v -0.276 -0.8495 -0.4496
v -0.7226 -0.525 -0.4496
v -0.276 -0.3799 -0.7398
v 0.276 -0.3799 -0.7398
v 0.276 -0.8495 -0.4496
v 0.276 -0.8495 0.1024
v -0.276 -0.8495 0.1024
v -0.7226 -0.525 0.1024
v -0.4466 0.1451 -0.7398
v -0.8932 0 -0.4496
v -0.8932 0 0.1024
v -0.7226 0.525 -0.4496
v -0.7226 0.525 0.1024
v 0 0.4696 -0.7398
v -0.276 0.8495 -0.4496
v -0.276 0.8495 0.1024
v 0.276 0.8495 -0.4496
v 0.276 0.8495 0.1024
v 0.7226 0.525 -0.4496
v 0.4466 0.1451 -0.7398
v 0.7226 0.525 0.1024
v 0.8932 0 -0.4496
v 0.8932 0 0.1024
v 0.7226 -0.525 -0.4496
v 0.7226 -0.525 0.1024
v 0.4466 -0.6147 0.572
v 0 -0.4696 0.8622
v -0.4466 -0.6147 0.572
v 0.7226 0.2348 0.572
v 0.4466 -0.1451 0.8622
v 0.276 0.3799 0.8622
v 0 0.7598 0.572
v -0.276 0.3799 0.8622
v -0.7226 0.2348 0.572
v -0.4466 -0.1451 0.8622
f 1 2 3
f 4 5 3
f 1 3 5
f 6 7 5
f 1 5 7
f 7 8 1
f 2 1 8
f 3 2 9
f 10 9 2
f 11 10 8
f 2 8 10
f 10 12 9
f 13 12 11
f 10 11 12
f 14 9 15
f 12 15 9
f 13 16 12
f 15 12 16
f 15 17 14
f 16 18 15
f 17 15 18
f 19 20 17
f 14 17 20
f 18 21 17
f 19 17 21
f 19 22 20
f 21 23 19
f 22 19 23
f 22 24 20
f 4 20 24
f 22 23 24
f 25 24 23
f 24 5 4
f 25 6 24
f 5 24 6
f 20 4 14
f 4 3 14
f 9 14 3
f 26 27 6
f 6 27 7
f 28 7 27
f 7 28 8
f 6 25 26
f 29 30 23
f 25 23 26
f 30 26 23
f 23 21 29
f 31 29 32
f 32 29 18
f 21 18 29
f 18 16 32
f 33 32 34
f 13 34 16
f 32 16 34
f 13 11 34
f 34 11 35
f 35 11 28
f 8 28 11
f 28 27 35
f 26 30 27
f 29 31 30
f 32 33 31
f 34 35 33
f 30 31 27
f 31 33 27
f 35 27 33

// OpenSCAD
polyhedron( points = [[-0.276019995195266, -0.84950219712126, -0.449620927835599], [-0.722629729961741, -0.525021231343206, -0.449620927835599], [-0.893219469221695, -5.46391665853506e-11, -0.449620927835599], [-0.722629730713409, 0.525021231218606, -0.449620927835599], [-0.276019996411492, 0.849502196956557, -0.449620927835599], [0.276019994896713, 0.849502196956563, -0.449620927835599], [0.722629729692322, 0.525021231218606, -0.449620927835599], [0.893219468999421, -5.46391665853506e-11, -0.449620927835599], [0.722629730538284, -0.525021231343203, -0.449620927835599], [0.2760199962655, -0.84950219712126, -0.449620927835599], [-0.276019995170481, -0.379908931509007, -0.73984552606325], [-0.446609734060785, 0.145112299071952, -0.739845526367136], [5.91592211577861e-10, 0.469593264623777, -0.739845526367136], [0.446609735165922, 0.14511229896453, -0.739845526367137], [0.276019996105738, -0.379908931623825, -0.739845525992288], [-0.276019995170481, -0.849502197044981, 0.102419063625167], [0.276019996238789, -0.849502197044981, 0.102419063524103], [0.722629730448302, -0.525021231281491, 0.102419063385364], [0.893219468858562, -1.64986865881814e-11, 0.102419063261945], [0.722629729532418, 0.525021231233174, 0.102419063200986], [0.276019994756856, 0.849502196956563, 0.102419063225773], [-0.276019996499854, 0.849502196956557, 0.102419063326837], [-0.722629730738502, 0.525021231233174, 0.102419063465576], [-0.893219469195909, -1.65042025757627e-11, 0.102419063588995], [-0.722629729916905, -0.525021231281494, 0.102419063649954], [-0.446609733991926, -0.614705564185524, 0.572012328484133], [0.446609735096597, -0.614705564303004, 0.572012328085643], [0.72262972979318, 0.234796632593985, 0.572012328143078], [-7.2563760478799e-10, 0.759817863776342, 0.572012328183183], [-0.722629730355944, 0.234796632566769, 0.57201232840767], [5.77928620028967e-10, -0.469593264739077, 0.862236926744491], [0.446609734524479, -0.14511229922653, 0.862236926849903], [0.276019995227206, 0.379908931918956, 0.862236926788941], [-0.276019995921487, 0.37990893191422, 0.862236926890009], [-0.446609734058293, -0.145112298849211, 0.862236926681183]], faces = [[0, 1, 10], [0, 10, 14, 9], [0, 9, 16, 15], [0, 15, 24, 1], [1, 2, 11, 10], [1, 24, 23, 2], [2, 3, 11], [2, 23, 22, 3], [3, 4, 12, 11], [3, 22, 21, 4], [4, 5, 12], [4, 21, 20, 5], [5, 6, 13, 12], [5, 20, 19, 6], [6, 7, 13], [6, 19, 18, 7], [7, 8, 14, 13], [7, 18, 17, 8], [8, 9, 14], [8, 17, 16, 9], [10, 11, 12, 13, 14], [15, 16, 26, 30, 25], [15, 25, 24], [16, 17, 26], [17, 18, 27, 31, 26], [18, 19, 27], [19, 20, 28, 32, 27], [20, 21, 28], [21, 22, 29, 33, 28], [22, 23, 29], [23, 24, 25, 34, 29], [25, 30, 34], [26, 31, 30], [27, 32, 31], [28, 33, 32], [29, 34, 33], [30, 31, 32, 33, 34]]);
